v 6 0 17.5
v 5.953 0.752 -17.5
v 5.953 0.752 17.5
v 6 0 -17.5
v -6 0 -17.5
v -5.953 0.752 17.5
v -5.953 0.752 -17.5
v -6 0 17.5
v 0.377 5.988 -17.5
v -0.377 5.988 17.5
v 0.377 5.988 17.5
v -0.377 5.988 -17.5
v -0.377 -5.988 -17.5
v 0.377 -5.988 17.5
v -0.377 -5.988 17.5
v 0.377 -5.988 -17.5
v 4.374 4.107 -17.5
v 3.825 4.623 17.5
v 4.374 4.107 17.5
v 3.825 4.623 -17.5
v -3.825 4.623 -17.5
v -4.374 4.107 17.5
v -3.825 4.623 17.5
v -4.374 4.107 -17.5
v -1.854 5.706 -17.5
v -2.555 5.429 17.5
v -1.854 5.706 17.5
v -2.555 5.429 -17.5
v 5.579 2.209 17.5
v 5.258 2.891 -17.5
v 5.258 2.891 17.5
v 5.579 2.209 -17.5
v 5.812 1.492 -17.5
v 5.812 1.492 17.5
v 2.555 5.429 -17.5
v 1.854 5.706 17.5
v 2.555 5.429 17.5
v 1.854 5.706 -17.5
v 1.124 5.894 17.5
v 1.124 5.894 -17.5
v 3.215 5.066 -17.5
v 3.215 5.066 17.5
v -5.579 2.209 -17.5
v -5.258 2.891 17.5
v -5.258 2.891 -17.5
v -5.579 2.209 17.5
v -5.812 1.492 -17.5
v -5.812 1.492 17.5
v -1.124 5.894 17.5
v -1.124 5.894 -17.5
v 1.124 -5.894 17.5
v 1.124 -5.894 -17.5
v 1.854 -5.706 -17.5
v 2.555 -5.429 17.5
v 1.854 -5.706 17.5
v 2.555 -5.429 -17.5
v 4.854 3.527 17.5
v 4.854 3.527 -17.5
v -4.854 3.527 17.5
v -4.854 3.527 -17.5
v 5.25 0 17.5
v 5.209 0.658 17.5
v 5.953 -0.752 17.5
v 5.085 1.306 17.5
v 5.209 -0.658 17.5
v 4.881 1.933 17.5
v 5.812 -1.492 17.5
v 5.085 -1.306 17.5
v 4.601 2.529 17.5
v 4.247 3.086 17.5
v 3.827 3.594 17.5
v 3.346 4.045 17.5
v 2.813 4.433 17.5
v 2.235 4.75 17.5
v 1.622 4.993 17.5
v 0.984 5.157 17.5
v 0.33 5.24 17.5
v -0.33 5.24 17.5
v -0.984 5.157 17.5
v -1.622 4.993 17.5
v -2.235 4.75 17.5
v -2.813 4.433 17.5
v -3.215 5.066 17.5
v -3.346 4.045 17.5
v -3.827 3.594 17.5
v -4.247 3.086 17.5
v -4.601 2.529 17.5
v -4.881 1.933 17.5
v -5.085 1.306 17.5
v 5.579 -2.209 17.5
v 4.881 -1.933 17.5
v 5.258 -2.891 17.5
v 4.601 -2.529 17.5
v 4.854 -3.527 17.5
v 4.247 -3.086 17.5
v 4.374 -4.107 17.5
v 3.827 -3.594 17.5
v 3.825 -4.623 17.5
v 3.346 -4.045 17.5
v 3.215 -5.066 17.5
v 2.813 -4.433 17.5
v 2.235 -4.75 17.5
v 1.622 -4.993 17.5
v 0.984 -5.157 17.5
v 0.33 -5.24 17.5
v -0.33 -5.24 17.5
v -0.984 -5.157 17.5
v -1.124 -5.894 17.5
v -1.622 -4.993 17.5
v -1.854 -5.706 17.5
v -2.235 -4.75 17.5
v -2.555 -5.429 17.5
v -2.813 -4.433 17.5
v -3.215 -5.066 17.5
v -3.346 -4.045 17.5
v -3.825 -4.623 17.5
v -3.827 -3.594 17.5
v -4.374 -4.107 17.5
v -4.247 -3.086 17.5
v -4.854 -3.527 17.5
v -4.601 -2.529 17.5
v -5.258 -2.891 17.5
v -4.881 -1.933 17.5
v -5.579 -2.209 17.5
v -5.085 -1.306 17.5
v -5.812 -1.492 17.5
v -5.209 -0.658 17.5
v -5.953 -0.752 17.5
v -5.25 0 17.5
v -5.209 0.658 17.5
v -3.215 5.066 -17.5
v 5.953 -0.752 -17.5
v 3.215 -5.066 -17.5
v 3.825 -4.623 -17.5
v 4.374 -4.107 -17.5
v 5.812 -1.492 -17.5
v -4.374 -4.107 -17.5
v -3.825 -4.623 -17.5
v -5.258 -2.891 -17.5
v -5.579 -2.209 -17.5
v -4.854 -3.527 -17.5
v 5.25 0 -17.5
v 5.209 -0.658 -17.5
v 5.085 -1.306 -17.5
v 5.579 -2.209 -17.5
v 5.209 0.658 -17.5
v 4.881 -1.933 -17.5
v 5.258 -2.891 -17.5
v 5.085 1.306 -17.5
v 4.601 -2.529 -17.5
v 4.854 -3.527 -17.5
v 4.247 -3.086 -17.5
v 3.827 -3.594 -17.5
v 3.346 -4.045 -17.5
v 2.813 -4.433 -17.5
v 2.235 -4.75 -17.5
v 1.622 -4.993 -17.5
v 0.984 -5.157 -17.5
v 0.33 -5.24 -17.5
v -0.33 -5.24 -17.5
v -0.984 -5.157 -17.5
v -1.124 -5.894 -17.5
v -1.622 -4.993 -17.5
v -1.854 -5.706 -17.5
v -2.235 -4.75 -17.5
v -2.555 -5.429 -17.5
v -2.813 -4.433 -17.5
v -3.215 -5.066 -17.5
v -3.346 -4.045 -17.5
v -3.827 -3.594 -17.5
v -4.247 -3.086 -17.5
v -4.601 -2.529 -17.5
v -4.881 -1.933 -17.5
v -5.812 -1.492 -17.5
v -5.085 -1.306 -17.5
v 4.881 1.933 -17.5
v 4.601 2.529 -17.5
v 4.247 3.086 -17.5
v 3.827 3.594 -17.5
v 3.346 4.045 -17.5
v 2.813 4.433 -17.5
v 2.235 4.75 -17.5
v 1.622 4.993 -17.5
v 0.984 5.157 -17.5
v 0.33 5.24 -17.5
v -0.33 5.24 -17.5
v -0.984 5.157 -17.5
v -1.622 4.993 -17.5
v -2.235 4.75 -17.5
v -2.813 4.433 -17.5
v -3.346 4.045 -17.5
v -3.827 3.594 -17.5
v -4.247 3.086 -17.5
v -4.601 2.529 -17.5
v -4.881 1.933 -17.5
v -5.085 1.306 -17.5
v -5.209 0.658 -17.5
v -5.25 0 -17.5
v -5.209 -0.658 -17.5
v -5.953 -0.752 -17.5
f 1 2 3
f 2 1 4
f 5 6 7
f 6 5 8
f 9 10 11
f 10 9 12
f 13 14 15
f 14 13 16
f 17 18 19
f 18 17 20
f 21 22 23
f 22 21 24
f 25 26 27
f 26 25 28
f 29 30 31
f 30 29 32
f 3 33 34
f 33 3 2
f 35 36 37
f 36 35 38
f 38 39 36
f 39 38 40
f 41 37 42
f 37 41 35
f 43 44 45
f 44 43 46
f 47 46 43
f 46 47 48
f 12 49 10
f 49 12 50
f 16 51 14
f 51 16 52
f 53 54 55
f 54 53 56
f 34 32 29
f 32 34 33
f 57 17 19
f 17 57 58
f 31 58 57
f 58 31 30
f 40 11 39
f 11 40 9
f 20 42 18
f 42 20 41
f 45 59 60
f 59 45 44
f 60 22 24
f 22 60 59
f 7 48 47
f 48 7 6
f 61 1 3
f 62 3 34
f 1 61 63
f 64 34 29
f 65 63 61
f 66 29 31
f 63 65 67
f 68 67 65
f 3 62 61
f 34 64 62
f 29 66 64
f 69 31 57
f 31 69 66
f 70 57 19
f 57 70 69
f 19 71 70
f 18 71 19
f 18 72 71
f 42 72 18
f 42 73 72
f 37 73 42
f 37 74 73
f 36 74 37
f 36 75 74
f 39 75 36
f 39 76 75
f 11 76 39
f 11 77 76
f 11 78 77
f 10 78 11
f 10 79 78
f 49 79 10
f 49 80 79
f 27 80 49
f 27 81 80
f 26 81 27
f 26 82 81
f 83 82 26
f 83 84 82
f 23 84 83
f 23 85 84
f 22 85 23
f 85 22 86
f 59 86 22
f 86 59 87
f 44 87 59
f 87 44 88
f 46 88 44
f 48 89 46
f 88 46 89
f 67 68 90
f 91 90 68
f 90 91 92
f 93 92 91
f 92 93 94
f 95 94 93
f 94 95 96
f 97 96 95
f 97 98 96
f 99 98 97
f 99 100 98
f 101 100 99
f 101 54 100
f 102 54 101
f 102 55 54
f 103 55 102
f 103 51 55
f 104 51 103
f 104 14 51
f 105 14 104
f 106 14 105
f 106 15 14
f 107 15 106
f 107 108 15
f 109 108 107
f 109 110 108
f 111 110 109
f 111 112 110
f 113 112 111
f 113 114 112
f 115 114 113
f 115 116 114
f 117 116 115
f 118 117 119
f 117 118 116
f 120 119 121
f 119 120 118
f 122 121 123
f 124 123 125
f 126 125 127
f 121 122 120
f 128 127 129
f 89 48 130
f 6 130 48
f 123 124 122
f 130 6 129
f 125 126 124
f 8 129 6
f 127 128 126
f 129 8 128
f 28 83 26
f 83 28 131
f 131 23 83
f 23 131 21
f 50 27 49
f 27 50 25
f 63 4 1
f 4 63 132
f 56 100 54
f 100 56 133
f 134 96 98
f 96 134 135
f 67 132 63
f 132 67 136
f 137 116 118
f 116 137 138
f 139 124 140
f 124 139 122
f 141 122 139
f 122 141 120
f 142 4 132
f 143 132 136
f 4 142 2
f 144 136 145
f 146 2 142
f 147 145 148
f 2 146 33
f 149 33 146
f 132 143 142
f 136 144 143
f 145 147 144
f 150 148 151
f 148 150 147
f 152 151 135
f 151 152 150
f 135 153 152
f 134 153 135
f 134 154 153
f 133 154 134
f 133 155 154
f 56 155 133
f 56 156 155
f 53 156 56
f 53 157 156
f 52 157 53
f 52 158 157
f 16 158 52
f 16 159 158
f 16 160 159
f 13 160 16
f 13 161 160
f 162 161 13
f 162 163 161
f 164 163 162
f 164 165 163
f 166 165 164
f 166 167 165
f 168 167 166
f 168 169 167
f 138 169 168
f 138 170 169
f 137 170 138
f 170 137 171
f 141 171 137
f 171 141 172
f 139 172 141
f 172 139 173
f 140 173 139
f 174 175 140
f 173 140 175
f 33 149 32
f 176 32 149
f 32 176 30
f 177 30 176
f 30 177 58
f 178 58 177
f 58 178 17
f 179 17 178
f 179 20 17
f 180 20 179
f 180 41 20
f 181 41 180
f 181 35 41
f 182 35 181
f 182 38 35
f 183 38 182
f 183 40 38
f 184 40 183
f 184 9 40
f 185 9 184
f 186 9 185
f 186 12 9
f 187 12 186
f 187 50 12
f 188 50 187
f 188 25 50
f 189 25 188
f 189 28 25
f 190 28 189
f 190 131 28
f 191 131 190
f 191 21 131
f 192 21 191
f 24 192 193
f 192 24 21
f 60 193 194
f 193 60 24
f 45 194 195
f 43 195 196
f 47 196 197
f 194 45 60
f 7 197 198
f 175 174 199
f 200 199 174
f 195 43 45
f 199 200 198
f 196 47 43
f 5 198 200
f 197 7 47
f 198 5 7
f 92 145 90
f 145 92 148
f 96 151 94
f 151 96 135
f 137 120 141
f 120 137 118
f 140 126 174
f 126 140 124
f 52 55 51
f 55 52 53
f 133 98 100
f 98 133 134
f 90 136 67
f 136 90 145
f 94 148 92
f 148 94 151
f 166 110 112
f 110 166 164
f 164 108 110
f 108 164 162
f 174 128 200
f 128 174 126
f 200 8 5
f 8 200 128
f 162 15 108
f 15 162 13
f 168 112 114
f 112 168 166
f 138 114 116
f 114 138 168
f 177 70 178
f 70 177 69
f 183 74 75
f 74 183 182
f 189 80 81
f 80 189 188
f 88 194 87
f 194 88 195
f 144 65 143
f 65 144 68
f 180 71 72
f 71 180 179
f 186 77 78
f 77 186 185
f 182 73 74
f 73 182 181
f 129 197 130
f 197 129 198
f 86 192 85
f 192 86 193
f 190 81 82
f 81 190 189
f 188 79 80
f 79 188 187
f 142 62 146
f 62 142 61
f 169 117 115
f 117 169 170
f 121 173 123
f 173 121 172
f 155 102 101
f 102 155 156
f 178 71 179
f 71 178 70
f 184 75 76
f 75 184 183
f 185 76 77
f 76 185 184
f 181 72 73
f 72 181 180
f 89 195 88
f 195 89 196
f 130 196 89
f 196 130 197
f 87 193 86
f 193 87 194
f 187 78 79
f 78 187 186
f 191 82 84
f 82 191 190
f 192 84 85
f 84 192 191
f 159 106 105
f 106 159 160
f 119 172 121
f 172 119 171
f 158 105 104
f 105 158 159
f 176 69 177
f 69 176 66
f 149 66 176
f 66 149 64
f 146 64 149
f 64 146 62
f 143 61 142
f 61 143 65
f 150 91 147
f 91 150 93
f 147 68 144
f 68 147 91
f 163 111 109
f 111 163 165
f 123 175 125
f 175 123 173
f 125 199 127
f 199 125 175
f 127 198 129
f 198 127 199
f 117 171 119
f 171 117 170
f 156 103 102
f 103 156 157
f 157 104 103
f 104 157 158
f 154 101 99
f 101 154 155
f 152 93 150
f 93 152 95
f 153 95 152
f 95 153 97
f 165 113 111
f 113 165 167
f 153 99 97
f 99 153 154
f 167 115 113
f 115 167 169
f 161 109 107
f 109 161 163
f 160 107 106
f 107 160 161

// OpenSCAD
$fn = 50;


difference() {
	union() {
		translate(v = [0, 0, -17.5000000000]) {
			cylinder(h = 35, r = 6.0000000000);
		}
	}
	union() {
		translate(v = [0, 0, -100.0000000000]) {
			cylinder(h = 200, r = 5.2500000000);
		}
	}
}
